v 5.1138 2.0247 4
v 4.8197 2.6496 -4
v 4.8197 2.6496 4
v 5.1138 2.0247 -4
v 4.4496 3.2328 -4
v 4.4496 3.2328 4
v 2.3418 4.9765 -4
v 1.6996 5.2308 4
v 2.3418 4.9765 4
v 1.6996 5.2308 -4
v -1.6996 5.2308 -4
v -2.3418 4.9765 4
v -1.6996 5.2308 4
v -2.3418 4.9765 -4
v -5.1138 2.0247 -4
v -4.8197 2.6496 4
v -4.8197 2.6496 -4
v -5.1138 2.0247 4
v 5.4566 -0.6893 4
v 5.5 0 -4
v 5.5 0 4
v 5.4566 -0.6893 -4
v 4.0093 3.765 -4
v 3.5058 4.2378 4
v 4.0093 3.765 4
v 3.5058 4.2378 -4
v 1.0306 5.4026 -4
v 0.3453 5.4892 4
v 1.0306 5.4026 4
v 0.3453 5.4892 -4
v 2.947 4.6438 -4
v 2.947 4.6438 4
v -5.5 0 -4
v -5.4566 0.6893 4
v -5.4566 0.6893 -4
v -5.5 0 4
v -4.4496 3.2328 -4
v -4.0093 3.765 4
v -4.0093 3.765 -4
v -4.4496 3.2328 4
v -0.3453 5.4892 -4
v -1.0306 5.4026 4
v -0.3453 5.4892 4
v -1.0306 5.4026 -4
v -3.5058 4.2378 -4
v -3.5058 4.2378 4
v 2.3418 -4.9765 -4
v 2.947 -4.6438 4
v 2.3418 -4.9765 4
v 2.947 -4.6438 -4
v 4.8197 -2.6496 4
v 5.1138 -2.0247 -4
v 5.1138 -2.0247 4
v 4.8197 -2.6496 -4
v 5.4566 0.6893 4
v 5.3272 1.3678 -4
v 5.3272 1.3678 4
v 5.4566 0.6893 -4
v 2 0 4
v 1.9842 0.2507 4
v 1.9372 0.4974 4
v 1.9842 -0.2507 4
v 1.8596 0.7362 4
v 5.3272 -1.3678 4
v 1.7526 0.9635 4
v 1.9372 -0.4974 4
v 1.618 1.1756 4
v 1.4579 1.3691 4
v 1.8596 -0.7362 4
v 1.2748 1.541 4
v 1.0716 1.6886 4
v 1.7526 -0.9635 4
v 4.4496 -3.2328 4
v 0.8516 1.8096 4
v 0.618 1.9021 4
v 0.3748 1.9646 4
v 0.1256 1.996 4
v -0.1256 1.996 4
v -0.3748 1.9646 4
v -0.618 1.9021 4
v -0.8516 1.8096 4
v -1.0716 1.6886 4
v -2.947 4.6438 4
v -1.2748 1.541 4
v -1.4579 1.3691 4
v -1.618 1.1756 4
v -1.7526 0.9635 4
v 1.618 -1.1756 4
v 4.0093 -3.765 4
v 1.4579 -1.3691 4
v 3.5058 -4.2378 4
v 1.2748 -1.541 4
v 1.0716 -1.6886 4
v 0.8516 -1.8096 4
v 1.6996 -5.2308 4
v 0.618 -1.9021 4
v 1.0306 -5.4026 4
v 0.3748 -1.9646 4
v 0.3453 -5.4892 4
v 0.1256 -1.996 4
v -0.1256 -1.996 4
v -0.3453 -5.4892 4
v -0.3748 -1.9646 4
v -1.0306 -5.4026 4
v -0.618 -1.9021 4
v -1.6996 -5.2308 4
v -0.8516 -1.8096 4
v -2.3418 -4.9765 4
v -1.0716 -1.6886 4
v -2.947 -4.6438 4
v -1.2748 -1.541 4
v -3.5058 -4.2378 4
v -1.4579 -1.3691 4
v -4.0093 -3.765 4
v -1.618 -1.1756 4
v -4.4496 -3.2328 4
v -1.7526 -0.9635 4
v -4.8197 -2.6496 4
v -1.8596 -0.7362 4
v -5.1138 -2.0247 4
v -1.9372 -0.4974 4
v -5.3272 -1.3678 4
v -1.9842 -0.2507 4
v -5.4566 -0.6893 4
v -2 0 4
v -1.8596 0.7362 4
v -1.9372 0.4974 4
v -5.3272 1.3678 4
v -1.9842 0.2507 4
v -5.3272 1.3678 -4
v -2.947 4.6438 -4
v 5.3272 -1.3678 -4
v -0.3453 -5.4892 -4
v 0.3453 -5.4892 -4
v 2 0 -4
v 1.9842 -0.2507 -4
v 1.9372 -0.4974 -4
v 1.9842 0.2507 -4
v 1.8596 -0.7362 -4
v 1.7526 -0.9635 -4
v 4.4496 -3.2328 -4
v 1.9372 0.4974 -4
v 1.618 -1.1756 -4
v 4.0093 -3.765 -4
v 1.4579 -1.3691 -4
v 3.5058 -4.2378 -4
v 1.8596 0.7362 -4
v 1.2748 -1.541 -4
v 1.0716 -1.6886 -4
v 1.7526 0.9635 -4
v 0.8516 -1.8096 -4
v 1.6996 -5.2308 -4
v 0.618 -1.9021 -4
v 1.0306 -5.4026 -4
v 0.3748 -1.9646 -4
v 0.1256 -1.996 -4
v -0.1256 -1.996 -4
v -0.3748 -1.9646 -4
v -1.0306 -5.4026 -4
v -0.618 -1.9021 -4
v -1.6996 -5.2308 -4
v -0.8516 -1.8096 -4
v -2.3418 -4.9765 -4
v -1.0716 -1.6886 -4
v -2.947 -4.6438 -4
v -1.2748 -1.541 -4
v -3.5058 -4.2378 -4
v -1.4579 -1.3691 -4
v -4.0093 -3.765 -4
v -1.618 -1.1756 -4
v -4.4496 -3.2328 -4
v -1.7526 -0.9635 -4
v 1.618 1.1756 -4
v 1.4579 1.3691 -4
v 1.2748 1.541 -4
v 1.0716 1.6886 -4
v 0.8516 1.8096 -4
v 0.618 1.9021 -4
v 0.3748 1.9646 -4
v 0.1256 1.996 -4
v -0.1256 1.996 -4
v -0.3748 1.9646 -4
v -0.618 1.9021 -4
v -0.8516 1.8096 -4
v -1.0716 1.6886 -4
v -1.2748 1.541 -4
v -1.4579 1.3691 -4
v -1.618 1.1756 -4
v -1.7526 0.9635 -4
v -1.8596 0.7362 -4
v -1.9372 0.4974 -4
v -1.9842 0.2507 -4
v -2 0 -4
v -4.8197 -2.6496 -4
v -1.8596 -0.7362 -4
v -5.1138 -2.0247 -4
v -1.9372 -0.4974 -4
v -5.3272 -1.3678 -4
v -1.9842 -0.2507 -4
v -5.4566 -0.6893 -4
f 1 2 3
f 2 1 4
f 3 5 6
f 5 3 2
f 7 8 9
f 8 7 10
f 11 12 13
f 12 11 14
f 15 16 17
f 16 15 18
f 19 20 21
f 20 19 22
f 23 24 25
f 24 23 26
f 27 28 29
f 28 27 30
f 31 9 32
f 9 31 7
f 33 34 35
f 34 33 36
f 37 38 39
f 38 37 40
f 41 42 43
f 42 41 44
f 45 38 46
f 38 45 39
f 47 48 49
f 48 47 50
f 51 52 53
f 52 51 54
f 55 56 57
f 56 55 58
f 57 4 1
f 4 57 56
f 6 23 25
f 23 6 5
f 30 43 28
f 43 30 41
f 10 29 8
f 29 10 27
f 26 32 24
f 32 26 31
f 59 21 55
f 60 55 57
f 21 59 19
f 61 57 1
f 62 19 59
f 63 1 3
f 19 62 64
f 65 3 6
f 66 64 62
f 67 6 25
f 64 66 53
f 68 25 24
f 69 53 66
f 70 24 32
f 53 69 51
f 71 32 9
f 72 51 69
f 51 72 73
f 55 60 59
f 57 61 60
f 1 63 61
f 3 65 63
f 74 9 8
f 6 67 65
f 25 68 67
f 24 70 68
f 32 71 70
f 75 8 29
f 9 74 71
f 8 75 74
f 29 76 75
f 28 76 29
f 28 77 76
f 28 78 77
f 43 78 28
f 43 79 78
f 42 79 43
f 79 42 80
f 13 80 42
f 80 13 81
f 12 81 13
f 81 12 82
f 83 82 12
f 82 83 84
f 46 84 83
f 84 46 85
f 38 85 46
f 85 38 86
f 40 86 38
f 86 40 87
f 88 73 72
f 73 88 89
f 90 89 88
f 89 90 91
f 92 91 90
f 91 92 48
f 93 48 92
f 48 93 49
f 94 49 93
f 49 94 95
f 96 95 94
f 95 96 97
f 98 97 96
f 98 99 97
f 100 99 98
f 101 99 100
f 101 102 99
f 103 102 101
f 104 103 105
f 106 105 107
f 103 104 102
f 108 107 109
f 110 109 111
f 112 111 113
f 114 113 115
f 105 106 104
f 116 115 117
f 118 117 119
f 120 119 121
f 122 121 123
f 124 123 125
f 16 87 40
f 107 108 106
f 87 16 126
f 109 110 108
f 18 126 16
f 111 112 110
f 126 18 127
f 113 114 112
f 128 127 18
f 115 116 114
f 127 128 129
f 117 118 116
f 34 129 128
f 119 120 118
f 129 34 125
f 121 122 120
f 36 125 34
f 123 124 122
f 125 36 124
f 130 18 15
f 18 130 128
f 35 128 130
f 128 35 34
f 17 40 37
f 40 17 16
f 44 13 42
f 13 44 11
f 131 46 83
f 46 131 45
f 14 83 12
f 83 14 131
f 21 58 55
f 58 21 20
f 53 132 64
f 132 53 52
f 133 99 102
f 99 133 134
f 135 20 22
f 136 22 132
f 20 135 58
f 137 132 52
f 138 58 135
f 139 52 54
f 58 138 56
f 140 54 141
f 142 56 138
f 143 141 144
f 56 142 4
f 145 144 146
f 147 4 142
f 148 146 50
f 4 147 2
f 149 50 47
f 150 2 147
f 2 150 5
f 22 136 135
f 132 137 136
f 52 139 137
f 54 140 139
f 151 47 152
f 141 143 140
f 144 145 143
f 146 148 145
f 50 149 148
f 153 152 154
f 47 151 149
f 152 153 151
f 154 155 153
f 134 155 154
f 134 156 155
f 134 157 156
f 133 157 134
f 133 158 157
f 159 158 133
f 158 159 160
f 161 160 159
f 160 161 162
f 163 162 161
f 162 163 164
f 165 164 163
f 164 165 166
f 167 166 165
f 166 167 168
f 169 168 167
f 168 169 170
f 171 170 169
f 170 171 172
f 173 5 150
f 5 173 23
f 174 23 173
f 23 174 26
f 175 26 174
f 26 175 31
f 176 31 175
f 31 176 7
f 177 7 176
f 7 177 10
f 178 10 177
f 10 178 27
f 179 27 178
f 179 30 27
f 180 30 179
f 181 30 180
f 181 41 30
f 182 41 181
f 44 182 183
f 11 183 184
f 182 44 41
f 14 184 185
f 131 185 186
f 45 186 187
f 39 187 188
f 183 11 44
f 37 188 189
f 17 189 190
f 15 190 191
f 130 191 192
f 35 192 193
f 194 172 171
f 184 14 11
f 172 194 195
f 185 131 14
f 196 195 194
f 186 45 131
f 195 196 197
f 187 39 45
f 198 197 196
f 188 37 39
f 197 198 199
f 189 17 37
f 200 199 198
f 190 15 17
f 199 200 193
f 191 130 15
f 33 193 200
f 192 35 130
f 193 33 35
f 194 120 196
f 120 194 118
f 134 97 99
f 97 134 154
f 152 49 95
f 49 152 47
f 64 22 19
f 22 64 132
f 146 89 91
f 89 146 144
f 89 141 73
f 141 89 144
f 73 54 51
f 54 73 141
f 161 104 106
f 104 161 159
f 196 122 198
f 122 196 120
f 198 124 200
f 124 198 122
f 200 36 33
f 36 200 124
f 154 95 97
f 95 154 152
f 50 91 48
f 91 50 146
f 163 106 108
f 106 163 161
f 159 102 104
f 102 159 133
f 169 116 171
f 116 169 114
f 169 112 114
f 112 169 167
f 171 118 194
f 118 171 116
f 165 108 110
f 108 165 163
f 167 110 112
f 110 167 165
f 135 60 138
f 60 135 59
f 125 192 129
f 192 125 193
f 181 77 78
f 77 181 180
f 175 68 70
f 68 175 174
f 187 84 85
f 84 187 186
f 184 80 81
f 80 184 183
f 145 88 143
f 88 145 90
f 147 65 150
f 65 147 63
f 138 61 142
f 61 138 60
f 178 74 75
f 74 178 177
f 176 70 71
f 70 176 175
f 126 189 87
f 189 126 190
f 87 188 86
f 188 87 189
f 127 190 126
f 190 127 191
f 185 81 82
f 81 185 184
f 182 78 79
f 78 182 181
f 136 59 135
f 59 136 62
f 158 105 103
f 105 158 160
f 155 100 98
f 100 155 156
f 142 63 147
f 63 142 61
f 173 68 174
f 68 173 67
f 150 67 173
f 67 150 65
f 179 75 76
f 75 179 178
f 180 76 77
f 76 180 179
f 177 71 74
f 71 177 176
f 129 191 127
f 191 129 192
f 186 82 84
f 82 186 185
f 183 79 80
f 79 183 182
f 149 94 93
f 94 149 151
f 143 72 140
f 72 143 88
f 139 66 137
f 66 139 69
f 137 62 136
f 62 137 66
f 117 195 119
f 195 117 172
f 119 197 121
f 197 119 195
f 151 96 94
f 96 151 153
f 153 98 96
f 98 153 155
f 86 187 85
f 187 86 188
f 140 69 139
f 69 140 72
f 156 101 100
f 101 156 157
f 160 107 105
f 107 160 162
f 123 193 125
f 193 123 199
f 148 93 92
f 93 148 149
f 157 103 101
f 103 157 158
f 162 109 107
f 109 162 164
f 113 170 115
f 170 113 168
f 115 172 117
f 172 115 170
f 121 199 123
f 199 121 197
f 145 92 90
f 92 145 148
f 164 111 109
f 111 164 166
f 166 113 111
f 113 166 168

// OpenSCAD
$fn = 50;


difference() {
	union() {
		translate(v = [0, 0, -4.0000000000]) {
			cylinder(h = 8, r = 5.5000000000);
		}
	}
	union() {
		translate(v = [0, 0, -100.0000000000]) {
			cylinder(h = 200, r = 2);
		}
	}
}
